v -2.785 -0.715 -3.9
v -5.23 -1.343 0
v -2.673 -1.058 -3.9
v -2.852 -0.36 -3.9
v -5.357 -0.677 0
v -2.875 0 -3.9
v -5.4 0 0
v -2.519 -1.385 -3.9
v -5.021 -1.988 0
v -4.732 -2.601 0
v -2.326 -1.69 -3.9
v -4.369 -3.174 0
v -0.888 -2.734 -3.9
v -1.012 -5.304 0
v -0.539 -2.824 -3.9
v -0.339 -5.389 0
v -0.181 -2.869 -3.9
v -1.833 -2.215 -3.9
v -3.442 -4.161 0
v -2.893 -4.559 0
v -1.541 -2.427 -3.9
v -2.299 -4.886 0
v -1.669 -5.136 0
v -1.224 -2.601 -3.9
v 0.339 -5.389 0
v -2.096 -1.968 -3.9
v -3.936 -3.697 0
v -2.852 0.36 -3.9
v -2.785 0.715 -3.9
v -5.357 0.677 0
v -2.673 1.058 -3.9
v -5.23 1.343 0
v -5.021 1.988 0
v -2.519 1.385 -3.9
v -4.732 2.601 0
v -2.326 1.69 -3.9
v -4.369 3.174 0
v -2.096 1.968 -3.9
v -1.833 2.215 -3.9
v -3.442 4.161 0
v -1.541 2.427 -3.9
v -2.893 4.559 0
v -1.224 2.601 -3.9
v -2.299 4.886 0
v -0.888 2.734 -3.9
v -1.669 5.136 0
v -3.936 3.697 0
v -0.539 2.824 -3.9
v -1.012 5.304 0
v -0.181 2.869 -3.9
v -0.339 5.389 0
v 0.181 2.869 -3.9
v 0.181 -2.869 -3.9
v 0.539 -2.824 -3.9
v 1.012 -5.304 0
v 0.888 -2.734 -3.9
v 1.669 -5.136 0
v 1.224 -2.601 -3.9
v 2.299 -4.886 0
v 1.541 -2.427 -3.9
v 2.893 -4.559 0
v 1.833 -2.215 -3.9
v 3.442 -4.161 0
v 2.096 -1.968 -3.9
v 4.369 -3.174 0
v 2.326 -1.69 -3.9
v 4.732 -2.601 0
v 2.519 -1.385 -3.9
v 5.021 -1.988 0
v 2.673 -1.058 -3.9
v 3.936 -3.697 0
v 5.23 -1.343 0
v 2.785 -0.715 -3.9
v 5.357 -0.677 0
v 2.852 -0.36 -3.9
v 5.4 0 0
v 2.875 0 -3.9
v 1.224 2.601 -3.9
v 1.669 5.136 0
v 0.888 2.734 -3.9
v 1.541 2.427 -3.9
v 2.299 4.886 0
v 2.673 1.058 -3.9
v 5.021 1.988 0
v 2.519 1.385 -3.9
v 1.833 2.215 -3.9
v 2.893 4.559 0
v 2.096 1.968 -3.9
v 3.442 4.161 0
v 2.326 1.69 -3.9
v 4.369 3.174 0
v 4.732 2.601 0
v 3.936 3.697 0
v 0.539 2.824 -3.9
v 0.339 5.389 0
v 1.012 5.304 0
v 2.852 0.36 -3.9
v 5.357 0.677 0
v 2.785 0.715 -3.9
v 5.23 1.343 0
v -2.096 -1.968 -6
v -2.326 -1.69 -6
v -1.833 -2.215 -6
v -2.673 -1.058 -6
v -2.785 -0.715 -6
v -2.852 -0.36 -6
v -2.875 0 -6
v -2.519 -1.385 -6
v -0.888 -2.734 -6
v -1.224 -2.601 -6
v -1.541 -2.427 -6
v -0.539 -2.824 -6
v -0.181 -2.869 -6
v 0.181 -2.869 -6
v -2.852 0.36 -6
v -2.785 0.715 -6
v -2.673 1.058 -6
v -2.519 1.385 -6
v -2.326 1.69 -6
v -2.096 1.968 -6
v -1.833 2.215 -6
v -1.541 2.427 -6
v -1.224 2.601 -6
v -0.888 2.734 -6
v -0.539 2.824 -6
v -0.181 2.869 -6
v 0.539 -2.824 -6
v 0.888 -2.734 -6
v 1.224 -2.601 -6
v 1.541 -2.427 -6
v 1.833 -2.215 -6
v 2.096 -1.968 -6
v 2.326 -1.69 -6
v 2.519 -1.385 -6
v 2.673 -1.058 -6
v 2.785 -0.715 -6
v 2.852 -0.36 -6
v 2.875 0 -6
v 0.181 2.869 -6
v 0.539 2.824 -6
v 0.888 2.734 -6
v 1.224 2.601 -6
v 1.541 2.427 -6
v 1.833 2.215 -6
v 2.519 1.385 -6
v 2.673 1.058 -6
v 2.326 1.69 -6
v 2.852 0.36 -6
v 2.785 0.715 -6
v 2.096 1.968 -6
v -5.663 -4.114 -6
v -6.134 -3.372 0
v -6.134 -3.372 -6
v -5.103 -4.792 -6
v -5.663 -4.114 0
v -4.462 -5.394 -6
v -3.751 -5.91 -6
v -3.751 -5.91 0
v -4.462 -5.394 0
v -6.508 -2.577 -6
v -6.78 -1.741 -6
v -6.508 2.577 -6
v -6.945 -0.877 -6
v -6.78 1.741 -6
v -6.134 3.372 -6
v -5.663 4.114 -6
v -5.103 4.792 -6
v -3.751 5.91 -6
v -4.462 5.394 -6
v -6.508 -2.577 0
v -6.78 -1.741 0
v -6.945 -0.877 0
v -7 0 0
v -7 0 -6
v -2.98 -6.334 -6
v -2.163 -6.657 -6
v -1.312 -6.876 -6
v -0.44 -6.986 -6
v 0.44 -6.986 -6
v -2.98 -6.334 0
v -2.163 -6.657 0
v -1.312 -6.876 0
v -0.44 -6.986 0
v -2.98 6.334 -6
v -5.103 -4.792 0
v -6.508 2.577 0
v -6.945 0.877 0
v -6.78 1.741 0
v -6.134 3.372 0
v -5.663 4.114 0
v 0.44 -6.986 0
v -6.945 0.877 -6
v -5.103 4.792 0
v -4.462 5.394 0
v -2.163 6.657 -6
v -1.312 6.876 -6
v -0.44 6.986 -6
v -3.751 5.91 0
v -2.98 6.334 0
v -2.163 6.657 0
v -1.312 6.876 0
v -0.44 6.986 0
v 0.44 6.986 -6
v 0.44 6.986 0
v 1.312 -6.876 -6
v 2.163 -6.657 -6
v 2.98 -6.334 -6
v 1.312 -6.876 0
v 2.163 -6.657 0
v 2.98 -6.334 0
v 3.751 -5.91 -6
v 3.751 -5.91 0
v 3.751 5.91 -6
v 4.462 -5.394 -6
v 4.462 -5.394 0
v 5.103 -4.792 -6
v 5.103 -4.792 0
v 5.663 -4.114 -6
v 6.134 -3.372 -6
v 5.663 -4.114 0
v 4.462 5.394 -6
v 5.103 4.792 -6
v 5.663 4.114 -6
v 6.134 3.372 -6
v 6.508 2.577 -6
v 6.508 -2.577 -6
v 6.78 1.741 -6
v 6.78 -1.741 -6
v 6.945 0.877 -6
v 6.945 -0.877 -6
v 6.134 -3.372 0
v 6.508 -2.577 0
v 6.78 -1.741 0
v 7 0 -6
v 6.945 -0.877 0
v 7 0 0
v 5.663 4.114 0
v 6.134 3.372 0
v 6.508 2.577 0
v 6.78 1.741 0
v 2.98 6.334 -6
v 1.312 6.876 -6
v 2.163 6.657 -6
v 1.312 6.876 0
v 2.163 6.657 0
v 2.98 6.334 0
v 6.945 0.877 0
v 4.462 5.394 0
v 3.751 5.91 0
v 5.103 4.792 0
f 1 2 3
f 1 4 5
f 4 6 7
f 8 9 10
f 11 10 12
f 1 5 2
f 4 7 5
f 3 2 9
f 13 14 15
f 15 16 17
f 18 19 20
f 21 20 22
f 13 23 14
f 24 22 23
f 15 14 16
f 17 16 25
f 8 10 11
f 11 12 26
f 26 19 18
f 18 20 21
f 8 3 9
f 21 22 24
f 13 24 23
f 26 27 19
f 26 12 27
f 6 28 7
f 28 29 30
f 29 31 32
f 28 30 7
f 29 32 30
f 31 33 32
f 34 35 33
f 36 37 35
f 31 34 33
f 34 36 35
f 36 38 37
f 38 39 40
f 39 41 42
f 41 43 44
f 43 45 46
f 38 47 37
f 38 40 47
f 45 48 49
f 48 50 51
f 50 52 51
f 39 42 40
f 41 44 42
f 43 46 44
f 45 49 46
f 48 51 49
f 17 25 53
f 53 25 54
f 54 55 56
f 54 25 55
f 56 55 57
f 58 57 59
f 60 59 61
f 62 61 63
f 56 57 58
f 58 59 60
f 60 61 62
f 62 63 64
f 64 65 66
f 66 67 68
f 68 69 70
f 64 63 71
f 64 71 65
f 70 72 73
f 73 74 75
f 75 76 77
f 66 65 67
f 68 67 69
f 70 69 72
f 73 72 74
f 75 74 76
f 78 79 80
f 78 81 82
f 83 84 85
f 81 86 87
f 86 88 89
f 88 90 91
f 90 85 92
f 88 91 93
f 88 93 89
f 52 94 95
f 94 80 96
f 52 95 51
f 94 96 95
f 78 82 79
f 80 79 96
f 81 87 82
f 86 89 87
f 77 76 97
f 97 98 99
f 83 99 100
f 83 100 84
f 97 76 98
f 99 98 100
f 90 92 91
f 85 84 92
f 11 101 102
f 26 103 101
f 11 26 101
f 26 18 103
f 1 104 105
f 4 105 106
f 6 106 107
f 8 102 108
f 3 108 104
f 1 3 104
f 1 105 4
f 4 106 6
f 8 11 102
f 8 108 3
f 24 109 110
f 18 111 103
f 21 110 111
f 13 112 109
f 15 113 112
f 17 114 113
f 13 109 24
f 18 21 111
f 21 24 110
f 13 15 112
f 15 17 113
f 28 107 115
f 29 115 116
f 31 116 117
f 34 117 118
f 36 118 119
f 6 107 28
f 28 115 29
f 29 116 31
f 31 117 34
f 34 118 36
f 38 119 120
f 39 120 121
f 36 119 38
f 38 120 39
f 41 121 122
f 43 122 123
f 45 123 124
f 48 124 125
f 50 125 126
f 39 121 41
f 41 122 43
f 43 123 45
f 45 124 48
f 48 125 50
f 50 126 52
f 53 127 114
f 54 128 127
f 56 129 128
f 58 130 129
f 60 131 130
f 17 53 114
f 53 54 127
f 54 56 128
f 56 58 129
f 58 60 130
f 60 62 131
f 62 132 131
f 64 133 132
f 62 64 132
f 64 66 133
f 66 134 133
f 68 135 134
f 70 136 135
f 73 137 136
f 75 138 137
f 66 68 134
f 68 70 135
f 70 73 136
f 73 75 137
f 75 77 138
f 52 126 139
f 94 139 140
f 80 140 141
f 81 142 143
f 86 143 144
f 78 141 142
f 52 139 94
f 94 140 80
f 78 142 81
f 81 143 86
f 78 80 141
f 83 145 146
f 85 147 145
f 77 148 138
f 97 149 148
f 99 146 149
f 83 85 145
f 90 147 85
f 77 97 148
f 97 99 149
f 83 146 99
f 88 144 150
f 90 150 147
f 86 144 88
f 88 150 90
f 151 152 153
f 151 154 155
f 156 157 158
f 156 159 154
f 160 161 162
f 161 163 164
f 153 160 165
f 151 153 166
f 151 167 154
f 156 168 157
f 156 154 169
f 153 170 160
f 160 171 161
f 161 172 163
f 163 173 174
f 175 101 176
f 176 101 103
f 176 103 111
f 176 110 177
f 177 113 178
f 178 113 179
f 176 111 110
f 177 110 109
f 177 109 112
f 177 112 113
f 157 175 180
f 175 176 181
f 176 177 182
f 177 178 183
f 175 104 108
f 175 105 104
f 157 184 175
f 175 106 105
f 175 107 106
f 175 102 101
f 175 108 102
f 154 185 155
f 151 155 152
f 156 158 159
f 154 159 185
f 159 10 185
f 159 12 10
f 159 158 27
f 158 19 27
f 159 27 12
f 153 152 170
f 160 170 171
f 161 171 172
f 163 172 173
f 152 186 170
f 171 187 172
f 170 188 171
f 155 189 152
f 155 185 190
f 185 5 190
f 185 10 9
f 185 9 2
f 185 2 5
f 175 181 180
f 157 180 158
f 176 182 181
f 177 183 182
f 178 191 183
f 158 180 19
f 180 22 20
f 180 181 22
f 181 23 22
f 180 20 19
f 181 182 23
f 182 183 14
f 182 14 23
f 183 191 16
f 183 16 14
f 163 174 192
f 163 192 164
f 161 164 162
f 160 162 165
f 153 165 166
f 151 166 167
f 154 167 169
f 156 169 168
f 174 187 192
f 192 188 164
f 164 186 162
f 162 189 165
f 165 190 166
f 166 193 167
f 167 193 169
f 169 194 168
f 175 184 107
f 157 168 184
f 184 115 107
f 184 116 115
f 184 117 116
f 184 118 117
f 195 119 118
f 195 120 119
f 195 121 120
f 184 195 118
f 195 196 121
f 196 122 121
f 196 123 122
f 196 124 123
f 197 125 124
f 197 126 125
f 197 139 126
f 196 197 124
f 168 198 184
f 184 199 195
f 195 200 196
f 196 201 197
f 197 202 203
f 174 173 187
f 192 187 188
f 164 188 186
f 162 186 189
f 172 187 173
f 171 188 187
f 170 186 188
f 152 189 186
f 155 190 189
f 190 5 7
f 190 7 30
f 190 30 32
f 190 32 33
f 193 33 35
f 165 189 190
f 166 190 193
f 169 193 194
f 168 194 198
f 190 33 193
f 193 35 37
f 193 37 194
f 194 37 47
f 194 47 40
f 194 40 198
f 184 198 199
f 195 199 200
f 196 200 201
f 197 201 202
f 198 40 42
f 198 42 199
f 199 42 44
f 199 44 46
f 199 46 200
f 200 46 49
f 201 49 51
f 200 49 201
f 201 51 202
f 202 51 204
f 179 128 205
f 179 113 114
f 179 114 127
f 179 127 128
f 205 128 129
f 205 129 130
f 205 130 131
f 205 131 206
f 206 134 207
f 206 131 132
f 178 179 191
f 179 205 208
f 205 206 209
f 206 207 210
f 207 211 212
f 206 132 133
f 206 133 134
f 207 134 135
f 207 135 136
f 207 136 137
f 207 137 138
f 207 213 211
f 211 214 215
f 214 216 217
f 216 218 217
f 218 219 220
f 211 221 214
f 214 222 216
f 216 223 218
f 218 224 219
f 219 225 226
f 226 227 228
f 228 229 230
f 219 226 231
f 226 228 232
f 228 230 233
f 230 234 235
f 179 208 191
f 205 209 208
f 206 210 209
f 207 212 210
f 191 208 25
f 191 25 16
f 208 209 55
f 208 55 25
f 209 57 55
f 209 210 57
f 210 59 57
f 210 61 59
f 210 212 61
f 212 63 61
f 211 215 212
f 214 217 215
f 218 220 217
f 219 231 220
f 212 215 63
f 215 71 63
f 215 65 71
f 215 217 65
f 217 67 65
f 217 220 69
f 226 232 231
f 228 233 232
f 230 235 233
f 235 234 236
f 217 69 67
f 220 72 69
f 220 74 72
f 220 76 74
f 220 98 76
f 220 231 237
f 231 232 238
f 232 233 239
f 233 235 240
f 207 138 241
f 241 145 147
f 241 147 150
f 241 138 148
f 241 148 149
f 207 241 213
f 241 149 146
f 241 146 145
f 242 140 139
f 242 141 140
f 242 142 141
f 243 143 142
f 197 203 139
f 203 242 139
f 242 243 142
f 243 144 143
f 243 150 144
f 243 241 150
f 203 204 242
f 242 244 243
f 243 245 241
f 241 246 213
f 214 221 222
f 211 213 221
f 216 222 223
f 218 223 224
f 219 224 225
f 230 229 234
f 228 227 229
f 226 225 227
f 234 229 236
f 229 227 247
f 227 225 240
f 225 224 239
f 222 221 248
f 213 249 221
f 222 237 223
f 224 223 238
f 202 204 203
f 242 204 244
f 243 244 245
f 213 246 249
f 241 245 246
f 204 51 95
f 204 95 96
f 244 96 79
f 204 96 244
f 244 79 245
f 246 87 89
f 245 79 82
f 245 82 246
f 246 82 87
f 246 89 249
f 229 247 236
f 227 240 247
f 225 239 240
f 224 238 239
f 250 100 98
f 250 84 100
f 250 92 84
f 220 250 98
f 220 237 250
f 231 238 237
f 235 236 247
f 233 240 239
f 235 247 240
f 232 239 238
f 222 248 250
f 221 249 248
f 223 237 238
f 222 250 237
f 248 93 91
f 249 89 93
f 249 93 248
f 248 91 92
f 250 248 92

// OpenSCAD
$fn = 50;

difference() {
	union() {
		translate(v = [0, 0, -6.0]) {
			cylinder(h = 6, r = 7.0);
		}
	}
	union() {
		translate(v = [0, 0, 0]) {
			rotate(a = [0, 0, 0]) {
				difference() {
					union() {
						translate(v = [0, 0, -9.0]) {
							cylinder(h = 9, r = 2.6);
						}
						translate(v = [0, 0, -3.9]) {
							cylinder(h = 3.9, r1 = 2.875, r2 = 5.4);
						}
						translate(v = [0, 0, -9.0]) {
							cylinder(h = 9, r = 2.875);
						}
						translate(v = [0, 0, -9.0]) {
							cylinder(h = 9, r = 2.6);
						}
					}
					union();
				}
			}
		}
	}
}
